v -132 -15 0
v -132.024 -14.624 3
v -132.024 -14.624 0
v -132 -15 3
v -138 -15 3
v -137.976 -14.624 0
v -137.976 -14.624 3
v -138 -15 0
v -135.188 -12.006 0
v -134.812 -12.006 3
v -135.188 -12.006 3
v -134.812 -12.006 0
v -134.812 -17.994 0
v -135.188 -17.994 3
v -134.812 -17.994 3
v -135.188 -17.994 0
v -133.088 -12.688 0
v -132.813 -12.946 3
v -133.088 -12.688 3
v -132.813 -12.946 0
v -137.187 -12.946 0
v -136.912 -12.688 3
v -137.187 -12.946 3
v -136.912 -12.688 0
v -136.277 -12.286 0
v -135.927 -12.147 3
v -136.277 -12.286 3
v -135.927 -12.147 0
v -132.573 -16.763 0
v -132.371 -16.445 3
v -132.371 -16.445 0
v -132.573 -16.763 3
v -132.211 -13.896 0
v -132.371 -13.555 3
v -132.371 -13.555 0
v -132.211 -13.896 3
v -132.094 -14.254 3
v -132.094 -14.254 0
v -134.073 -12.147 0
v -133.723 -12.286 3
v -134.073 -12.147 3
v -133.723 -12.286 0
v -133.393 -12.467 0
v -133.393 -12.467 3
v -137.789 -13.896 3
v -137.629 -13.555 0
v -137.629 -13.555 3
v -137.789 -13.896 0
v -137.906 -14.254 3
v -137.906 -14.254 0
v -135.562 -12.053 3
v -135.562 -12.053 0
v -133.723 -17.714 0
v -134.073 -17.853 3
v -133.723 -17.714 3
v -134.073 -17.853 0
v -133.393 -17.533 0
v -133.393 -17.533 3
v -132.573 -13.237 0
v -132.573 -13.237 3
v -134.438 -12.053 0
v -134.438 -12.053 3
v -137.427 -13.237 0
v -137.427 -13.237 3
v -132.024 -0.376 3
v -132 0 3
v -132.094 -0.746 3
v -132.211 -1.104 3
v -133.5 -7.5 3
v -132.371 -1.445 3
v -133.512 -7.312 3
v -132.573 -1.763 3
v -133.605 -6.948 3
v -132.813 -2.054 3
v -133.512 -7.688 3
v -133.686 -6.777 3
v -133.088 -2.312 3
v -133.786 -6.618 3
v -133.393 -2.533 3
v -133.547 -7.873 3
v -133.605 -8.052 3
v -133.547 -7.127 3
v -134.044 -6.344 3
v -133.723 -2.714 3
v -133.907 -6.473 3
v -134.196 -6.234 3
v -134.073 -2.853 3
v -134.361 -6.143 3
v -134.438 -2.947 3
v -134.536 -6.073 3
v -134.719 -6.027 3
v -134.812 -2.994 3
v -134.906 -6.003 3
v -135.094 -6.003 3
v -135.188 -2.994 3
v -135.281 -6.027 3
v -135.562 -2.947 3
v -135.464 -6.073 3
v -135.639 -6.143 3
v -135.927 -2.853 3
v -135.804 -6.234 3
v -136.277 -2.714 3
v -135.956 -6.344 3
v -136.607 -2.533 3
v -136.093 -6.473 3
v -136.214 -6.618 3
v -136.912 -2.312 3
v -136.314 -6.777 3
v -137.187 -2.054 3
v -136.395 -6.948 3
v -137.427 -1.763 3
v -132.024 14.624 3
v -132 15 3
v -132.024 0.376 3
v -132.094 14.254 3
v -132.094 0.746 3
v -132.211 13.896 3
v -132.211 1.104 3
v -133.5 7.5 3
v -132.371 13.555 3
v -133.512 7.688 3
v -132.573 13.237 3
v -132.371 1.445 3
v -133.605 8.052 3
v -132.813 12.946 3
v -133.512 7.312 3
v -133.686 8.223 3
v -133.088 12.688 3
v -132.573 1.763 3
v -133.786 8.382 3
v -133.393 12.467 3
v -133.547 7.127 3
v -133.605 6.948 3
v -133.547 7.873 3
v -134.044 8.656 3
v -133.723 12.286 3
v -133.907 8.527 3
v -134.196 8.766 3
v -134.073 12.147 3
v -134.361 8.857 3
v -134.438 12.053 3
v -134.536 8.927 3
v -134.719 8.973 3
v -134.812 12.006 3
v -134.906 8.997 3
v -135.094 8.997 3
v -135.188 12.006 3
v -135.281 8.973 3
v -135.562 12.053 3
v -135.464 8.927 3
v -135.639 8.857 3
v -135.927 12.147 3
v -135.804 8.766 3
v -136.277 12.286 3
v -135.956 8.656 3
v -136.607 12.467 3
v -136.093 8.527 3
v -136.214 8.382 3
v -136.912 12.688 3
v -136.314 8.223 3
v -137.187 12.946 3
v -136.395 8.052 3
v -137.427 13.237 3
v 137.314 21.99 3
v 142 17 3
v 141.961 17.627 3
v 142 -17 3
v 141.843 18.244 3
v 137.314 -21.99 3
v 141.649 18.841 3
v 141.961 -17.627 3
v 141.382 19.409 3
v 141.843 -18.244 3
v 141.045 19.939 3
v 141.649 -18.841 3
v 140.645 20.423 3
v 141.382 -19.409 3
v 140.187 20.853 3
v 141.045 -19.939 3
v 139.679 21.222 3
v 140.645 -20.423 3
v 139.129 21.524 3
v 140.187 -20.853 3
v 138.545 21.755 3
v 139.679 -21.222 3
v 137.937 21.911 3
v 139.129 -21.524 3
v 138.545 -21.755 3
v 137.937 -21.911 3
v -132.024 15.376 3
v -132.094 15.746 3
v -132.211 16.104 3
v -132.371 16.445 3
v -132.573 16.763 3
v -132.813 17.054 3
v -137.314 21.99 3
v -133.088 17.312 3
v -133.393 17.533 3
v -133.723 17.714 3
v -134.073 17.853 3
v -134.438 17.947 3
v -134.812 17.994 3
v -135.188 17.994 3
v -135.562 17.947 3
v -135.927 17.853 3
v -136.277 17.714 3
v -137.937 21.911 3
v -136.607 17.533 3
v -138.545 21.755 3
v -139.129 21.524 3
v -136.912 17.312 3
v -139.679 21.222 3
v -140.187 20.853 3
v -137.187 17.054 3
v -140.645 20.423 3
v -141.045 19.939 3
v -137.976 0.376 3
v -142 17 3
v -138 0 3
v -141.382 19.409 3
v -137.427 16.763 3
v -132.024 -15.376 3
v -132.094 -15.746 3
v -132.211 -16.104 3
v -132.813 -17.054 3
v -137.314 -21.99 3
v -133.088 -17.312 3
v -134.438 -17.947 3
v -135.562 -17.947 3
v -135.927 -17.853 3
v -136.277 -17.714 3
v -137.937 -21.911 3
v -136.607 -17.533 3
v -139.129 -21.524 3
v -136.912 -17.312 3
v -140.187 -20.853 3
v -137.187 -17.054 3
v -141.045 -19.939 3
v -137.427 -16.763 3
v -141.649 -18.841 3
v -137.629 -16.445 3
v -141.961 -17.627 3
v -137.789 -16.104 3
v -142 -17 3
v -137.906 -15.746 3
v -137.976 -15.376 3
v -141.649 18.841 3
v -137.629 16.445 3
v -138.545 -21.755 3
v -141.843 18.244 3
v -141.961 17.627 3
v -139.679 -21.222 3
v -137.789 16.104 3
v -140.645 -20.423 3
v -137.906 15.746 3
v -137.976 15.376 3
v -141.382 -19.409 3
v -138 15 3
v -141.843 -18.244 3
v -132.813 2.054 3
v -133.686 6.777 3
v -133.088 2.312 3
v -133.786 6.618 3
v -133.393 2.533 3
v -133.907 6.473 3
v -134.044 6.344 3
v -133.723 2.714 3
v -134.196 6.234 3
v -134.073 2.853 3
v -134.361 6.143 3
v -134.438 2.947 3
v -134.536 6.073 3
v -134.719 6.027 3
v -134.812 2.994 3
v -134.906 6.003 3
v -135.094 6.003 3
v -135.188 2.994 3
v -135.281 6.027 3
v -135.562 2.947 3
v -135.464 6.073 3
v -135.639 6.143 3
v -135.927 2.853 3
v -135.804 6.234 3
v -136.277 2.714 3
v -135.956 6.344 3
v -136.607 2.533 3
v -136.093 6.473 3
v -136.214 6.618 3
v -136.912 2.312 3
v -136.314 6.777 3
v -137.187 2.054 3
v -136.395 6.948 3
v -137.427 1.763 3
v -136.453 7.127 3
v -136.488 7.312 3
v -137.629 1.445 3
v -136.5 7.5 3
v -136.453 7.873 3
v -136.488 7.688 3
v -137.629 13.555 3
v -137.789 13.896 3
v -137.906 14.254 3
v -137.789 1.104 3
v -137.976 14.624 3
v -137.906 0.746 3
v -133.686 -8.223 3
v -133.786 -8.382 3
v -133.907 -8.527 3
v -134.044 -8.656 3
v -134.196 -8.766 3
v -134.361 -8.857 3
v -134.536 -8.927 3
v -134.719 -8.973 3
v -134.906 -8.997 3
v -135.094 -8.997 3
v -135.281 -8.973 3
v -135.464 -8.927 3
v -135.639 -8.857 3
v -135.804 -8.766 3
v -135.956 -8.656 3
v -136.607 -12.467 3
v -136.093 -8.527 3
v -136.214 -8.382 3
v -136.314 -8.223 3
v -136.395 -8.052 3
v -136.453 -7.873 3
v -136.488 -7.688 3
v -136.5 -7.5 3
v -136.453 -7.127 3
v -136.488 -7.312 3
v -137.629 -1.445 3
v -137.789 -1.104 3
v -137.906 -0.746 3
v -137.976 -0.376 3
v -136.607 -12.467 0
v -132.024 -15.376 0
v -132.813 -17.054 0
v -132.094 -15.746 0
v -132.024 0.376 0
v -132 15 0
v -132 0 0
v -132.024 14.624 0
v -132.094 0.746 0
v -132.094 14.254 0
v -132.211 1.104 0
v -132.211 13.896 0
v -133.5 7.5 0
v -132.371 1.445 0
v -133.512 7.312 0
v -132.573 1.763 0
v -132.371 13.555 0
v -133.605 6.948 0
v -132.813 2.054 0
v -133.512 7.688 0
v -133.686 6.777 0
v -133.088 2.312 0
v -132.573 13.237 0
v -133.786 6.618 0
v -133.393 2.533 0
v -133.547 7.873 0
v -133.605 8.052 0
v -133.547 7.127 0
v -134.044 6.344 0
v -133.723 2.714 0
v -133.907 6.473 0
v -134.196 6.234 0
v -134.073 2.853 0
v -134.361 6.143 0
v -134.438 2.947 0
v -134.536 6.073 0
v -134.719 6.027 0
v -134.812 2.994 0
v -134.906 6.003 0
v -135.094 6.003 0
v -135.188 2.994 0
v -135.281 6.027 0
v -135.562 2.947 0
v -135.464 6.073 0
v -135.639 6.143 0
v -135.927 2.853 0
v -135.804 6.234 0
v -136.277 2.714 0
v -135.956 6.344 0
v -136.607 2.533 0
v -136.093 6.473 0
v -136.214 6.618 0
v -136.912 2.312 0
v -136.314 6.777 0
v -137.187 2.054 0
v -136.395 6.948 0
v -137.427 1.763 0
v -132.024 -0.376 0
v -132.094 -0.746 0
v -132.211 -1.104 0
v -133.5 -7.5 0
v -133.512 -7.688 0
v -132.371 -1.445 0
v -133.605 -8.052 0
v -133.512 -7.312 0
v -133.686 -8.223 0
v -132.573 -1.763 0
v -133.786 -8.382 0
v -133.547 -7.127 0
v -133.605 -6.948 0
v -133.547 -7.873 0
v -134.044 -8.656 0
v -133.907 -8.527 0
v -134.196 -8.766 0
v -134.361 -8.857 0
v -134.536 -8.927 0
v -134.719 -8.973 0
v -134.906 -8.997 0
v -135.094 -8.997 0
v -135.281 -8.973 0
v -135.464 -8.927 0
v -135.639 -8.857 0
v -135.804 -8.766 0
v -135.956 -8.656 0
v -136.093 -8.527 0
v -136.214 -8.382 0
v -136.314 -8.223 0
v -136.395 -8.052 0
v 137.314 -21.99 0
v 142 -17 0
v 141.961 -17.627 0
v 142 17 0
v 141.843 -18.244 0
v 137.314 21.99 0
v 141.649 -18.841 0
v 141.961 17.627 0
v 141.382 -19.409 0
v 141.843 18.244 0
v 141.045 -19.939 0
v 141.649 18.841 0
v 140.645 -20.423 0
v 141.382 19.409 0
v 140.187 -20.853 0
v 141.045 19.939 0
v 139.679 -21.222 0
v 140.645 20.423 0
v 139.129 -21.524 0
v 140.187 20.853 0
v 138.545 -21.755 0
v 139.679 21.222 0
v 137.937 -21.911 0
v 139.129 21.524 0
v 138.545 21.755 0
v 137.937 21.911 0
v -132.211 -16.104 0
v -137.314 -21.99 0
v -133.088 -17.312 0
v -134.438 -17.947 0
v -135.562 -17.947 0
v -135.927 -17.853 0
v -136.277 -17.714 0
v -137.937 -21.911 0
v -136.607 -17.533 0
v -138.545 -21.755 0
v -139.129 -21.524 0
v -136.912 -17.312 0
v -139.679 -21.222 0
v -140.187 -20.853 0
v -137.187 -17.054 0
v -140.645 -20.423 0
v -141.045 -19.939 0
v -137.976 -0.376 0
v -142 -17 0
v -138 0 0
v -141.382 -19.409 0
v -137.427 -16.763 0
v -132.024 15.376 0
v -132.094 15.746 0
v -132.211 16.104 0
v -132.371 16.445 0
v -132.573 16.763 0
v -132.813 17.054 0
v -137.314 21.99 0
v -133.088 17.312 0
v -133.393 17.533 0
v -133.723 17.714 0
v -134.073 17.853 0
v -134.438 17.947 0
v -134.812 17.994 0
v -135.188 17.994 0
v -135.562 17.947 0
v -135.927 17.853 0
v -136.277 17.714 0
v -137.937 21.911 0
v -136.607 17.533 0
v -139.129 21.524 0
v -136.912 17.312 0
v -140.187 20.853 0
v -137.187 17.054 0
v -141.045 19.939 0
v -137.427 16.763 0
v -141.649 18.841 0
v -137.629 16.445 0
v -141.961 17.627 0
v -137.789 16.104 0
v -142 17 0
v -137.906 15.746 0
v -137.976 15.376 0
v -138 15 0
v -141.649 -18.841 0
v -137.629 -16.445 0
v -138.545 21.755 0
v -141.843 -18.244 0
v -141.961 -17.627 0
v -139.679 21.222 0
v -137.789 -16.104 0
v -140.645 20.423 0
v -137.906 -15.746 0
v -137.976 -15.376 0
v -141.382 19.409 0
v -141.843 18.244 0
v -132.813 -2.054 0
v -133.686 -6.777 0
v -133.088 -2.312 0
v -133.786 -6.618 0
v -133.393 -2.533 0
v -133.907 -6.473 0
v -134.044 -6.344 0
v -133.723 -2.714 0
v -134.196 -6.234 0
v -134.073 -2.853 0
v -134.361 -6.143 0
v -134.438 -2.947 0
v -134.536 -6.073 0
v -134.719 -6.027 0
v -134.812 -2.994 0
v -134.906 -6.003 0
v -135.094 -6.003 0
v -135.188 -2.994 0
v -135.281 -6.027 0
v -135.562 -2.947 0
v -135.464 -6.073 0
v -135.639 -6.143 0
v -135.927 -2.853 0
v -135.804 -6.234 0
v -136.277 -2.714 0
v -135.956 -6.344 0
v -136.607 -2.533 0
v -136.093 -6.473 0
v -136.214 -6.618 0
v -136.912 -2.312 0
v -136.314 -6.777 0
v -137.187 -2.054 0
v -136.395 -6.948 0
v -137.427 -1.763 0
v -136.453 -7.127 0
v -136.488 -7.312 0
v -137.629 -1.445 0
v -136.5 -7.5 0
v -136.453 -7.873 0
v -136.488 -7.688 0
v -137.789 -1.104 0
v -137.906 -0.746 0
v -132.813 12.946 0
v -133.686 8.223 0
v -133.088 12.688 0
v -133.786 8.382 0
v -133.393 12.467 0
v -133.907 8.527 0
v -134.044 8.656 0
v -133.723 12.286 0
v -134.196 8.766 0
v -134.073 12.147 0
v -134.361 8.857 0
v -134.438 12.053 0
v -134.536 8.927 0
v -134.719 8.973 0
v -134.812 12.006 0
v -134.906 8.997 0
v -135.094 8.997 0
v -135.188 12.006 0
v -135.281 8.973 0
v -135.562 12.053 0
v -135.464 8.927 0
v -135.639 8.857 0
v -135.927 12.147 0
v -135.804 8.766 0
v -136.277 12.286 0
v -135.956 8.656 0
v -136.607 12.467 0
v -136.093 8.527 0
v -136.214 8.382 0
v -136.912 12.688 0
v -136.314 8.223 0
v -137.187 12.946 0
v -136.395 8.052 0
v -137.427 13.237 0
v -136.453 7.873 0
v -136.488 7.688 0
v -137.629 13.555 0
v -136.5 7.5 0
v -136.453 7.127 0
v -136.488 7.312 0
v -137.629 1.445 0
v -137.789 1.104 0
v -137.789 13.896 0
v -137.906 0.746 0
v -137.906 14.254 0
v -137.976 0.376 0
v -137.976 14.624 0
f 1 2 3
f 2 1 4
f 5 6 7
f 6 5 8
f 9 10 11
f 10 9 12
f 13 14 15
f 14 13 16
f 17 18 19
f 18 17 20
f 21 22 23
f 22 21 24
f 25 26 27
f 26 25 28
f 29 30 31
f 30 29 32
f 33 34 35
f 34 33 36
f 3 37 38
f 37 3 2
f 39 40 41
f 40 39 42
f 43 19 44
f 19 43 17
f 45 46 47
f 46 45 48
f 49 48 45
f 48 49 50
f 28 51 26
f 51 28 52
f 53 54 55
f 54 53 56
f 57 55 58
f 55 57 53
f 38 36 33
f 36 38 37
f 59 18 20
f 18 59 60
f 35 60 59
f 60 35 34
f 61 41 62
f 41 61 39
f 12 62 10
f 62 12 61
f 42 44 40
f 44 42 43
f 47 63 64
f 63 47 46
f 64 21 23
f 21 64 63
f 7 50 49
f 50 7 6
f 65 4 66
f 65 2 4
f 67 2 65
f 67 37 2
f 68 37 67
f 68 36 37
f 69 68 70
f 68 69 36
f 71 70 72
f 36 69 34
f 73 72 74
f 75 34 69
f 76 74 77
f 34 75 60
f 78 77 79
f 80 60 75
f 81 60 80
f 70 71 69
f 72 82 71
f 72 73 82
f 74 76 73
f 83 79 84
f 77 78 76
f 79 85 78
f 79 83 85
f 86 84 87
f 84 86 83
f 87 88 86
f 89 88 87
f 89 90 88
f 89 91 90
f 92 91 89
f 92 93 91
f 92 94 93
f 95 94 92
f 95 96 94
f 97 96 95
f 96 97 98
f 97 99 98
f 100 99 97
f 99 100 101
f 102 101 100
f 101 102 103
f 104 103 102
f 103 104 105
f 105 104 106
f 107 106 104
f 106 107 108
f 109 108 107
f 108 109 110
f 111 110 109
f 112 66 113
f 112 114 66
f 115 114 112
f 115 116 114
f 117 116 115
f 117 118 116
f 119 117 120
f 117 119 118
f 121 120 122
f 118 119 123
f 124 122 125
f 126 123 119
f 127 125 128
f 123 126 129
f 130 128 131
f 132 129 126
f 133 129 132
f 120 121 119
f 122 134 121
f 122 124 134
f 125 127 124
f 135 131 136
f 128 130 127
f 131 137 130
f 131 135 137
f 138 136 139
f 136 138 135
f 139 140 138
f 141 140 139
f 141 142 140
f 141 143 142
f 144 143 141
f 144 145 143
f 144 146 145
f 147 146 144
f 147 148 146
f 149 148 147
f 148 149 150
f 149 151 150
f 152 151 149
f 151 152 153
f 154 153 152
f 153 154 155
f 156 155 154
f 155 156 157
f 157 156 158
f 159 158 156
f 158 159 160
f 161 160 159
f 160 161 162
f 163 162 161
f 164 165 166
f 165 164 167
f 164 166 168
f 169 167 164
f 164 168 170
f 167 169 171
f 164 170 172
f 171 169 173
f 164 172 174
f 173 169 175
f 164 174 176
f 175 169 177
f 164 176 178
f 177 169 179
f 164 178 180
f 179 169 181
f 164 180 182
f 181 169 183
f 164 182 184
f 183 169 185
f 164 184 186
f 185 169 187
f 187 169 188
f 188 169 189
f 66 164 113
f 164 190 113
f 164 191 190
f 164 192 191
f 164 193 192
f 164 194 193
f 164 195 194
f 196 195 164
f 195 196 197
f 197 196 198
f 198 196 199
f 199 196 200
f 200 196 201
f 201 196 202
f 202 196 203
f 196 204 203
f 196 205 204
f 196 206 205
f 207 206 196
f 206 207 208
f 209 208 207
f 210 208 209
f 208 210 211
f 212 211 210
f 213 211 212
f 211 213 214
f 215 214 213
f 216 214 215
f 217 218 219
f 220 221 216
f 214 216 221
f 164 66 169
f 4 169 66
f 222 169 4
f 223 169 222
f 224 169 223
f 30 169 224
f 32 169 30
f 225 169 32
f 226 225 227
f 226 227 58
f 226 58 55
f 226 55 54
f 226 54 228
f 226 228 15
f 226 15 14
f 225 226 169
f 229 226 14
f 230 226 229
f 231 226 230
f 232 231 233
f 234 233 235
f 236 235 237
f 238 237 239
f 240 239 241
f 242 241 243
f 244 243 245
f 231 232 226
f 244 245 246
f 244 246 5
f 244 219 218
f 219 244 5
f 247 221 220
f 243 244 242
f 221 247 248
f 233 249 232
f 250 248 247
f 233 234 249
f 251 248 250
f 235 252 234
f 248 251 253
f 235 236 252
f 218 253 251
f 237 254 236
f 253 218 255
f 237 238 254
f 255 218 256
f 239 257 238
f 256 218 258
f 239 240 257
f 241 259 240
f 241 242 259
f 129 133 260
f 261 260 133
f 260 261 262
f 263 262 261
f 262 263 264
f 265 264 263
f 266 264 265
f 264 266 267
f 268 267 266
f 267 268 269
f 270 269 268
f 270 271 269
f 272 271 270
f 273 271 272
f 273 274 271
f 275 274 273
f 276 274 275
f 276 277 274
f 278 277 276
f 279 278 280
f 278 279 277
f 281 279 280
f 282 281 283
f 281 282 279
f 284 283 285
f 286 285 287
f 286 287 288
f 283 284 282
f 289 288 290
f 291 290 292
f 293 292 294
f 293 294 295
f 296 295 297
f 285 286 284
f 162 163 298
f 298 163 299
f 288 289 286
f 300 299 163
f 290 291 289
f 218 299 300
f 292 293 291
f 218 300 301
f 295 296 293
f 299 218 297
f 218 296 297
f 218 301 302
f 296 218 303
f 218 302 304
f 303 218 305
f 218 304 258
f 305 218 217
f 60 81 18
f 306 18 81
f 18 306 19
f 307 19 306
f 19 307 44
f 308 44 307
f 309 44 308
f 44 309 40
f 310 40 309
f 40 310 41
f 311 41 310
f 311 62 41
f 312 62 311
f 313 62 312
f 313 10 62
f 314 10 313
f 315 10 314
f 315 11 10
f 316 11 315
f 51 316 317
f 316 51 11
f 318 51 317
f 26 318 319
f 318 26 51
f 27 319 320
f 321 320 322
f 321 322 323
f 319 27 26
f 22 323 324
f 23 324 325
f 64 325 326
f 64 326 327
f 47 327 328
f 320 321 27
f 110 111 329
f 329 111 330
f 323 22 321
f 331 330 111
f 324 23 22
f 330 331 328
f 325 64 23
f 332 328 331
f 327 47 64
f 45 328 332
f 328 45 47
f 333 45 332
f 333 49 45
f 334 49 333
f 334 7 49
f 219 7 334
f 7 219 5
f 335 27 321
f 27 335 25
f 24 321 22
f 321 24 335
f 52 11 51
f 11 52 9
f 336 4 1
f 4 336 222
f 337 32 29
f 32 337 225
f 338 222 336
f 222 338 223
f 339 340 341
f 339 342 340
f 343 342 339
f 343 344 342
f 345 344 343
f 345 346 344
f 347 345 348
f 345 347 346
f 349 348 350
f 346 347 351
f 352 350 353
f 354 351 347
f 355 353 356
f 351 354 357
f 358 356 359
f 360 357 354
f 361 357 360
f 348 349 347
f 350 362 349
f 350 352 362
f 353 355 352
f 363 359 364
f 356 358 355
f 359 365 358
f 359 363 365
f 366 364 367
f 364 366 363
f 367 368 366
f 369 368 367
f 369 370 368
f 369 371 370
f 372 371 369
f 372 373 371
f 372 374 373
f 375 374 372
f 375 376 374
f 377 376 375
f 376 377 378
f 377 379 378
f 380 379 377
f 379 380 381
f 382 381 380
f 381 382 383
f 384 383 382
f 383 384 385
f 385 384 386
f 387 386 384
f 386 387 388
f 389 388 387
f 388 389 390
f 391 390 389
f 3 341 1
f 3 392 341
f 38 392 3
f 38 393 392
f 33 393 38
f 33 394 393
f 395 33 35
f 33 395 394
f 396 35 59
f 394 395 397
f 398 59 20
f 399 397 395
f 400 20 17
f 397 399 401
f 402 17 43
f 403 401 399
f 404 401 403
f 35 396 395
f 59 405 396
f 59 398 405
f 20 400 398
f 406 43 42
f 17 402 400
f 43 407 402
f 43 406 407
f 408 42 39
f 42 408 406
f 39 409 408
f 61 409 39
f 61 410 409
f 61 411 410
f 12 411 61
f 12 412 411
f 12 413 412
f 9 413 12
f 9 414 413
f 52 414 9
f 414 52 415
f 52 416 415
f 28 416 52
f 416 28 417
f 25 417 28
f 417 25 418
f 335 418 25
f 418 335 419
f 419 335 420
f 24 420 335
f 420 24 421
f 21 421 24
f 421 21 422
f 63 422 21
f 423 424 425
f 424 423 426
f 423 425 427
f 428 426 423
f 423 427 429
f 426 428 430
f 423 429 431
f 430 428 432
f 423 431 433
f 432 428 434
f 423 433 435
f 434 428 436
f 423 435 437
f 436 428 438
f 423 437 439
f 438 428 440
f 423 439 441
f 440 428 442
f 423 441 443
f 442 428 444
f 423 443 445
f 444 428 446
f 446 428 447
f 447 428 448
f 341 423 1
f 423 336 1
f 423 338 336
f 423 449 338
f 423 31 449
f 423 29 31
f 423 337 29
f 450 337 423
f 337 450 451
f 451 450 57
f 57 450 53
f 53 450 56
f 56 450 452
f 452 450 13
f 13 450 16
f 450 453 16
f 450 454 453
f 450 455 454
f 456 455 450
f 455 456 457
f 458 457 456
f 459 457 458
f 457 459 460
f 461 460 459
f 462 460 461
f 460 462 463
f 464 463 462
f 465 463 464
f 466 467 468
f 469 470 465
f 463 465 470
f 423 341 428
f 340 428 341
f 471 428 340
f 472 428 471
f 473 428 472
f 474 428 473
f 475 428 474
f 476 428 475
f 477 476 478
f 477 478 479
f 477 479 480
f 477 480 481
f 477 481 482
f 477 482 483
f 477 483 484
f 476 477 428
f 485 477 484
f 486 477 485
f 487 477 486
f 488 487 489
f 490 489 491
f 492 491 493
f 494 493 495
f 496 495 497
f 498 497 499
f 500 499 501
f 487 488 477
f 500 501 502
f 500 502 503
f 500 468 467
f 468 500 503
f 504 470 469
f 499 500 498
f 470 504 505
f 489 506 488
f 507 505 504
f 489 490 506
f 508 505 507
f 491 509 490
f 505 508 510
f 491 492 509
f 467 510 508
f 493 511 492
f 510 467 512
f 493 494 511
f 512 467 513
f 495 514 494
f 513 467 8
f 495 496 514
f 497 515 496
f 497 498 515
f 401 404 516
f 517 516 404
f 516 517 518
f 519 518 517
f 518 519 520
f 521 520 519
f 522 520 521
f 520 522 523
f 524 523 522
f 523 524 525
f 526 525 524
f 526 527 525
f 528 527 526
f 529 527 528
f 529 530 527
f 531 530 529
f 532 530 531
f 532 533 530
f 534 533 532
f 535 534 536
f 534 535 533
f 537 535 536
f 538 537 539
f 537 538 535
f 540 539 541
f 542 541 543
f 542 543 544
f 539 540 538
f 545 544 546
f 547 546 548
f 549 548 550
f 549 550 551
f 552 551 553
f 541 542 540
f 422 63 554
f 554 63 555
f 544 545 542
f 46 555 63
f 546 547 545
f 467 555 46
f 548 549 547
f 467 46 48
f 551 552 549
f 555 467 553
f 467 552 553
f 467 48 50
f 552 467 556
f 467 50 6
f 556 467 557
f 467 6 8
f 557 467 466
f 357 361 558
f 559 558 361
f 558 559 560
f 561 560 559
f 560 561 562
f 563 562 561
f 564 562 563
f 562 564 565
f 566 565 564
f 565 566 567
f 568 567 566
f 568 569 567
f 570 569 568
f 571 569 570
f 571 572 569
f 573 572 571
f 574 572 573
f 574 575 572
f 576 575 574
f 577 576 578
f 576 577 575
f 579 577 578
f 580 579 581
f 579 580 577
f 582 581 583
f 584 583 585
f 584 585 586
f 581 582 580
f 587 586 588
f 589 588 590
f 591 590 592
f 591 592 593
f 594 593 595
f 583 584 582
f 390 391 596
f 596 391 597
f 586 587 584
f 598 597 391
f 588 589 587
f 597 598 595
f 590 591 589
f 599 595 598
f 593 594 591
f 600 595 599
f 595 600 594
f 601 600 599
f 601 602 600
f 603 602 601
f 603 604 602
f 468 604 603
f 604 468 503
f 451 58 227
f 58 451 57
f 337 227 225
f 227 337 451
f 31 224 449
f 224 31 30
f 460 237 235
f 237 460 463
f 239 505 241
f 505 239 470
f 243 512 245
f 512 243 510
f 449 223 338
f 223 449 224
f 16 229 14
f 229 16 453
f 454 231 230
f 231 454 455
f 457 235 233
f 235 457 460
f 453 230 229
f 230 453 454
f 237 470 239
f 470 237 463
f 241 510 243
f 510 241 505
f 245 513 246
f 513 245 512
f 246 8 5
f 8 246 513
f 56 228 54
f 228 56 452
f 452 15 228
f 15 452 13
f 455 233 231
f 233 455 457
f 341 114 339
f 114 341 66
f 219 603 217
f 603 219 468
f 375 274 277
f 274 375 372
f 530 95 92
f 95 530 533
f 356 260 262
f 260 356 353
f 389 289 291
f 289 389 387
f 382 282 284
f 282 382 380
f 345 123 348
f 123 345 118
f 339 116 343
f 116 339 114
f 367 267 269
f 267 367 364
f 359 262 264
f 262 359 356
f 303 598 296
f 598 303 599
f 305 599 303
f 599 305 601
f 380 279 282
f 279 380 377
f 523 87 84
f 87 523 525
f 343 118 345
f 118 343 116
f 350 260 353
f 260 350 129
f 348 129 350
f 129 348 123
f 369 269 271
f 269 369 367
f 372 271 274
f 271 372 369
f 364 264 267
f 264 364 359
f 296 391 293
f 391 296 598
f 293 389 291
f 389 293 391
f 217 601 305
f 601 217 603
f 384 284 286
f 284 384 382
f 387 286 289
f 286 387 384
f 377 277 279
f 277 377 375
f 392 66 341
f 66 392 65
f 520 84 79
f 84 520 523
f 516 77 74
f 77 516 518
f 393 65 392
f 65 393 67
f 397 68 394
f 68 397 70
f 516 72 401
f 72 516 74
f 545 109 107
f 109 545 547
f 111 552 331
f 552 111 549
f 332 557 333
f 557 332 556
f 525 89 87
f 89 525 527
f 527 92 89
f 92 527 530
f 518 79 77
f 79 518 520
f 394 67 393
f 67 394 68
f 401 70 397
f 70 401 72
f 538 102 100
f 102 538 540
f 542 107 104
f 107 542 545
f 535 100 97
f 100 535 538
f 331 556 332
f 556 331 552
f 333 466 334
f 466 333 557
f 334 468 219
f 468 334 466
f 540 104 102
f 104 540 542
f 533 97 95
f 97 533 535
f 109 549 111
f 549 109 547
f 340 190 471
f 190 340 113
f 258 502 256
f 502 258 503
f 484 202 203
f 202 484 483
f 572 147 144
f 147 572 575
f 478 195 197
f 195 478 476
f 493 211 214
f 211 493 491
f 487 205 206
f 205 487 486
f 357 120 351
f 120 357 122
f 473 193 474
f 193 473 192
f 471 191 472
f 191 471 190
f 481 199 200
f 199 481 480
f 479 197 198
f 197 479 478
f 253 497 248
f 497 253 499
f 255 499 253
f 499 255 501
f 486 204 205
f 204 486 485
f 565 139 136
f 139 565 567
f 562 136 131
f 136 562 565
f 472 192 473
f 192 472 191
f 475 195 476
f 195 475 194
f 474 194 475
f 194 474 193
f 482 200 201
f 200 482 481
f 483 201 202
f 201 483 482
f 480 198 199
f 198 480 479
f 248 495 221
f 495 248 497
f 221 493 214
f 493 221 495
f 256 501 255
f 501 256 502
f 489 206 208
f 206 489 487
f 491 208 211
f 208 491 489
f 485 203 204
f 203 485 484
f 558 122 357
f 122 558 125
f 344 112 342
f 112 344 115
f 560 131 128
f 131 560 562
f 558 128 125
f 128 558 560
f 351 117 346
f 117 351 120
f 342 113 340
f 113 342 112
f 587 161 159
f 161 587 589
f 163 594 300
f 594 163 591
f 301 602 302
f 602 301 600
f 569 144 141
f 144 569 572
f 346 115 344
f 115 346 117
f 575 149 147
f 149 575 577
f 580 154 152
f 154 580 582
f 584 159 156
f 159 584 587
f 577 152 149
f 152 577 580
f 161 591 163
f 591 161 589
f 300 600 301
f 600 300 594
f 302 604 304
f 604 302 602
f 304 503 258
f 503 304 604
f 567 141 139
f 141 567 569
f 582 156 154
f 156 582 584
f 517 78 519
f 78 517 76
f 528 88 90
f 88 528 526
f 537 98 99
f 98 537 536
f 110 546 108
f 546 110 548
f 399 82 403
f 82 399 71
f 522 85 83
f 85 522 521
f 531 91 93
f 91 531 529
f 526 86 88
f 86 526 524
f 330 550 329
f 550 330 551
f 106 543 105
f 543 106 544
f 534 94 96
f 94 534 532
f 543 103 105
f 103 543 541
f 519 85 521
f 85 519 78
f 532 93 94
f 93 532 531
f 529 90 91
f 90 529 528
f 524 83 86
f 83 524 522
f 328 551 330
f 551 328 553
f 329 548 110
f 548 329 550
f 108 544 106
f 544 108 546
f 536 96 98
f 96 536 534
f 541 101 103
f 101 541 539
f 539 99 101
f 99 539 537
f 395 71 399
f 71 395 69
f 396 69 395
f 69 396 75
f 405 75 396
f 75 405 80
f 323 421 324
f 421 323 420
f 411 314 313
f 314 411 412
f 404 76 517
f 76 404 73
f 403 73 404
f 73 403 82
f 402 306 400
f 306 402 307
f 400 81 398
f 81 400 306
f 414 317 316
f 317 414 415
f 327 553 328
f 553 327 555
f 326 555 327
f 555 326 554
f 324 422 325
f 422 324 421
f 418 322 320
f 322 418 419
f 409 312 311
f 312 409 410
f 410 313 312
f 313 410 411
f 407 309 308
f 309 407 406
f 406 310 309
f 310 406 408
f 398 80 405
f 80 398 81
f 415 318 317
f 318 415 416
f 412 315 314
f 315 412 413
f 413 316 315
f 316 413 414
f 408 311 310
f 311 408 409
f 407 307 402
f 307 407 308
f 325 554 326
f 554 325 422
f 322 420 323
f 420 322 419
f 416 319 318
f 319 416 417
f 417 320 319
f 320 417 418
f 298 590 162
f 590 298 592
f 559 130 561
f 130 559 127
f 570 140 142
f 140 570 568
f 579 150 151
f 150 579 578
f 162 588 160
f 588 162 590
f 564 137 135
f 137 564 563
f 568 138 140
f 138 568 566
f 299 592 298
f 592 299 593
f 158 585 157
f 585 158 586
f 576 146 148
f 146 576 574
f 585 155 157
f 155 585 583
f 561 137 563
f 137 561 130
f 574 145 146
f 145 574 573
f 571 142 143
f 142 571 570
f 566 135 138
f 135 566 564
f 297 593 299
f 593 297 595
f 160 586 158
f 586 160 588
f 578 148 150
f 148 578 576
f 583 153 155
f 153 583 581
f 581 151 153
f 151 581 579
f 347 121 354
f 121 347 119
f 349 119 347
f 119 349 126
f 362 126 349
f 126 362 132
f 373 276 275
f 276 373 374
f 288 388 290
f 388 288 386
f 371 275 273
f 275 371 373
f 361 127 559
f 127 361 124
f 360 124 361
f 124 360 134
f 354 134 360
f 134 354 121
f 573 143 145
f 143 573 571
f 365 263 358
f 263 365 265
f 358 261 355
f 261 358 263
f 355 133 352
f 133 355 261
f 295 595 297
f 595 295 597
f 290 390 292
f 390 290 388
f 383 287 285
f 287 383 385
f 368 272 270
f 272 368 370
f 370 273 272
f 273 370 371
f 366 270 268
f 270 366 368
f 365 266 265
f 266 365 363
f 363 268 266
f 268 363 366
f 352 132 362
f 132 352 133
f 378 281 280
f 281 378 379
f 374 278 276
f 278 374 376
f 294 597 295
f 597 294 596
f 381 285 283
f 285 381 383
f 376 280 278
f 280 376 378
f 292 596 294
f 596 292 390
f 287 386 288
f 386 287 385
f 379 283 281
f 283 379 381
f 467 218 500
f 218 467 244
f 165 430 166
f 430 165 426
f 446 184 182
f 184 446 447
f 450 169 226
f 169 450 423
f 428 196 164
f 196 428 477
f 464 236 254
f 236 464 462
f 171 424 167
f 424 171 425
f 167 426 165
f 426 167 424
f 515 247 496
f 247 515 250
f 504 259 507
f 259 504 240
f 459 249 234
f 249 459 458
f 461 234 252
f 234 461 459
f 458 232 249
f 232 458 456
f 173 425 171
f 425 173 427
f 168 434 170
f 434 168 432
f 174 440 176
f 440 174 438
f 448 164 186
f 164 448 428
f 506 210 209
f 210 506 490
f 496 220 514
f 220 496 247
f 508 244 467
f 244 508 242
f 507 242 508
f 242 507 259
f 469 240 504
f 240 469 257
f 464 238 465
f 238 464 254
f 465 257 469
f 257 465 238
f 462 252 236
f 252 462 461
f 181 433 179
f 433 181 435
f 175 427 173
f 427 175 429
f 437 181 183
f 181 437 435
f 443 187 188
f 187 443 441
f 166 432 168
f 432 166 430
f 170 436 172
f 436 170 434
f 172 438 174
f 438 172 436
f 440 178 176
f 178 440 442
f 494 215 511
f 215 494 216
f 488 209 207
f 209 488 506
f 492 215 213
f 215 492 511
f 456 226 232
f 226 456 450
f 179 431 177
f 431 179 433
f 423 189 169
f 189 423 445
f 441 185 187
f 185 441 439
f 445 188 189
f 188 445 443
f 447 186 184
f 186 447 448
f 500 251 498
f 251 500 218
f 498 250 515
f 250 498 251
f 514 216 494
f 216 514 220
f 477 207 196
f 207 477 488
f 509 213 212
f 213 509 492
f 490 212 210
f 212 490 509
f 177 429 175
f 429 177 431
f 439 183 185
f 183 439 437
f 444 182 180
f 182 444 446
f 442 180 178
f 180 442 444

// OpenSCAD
$fn = 50;


difference() {
	union() {
		hull() {
			translate(v = [-137.0000000000, 17.0000000000, 0]) {
				cylinder(h = 3, r = 5);
			}
			translate(v = [137.0000000000, 17.0000000000, 0]) {
				cylinder(h = 3, r = 5);
			}
			translate(v = [-137.0000000000, -17.0000000000, 0]) {
				cylinder(h = 3, r = 5);
			}
			translate(v = [137.0000000000, -17.0000000000, 0]) {
				cylinder(h = 3, r = 5);
			}
		}
	}
	union() {
		translate(v = [-135.0000000000, -15.0000000000, 0]) {
			cylinder(h = 3, r = 3.0000000000);
		}
		translate(v = [-135.0000000000, 0.0000000000, 0]) {
			cylinder(h = 3, r = 3.0000000000);
		}
		translate(v = [-135.0000000000, 15.0000000000, 0]) {
			cylinder(h = 3, r = 3.0000000000);
		}
		translate(v = [-135.0000000000, -15.0000000000, 0]) {
			cylinder(h = 3, r = 1.5000000000);
		}
		translate(v = [-135.0000000000, -7.5000000000, 0]) {
			cylinder(h = 3, r = 1.5000000000);
		}
		translate(v = [-135.0000000000, 0.0000000000, 0]) {
			cylinder(h = 3, r = 1.5000000000);
		}
		translate(v = [-135.0000000000, 7.5000000000, 0]) {
			cylinder(h = 3, r = 1.5000000000);
		}
		translate(v = [-135.0000000000, 15.0000000000, 0]) {
			cylinder(h = 3, r = 1.5000000000);
		}
		translate(v = [-135.0000000000, -15.0000000000, 0]) {
			cylinder(h = 3, r = 1.5000000000);
		}
		translate(v = [-135.0000000000, -7.5000000000, 0]) {
			cylinder(h = 3, r = 1.5000000000);
		}
		translate(v = [-135.0000000000, 0.0000000000, 0]) {
			cylinder(h = 3, r = 1.5000000000);
		}
		translate(v = [-135.0000000000, 7.5000000000, 0]) {
			cylinder(h = 3, r = 1.5000000000);
		}
		translate(v = [-135.0000000000, 15.0000000000, 0]) {
			cylinder(h = 3, r = 1.5000000000);
		}
		translate(v = [-135.0000000000, -15.0000000000, 0]) {
			cylinder(h = 3, r = 1.5000000000);
		}
		translate(v = [-135.0000000000, -7.5000000000, 0]) {
			cylinder(h = 3, r = 1.5000000000);
		}
		translate(v = [-135.0000000000, 0.0000000000, 0]) {
			cylinder(h = 3, r = 1.5000000000);
		}
		translate(v = [-135.0000000000, 7.5000000000, 0]) {
			cylinder(h = 3, r = 1.5000000000);
		}
		translate(v = [-135.0000000000, 15.0000000000, 0]) {
			cylinder(h = 3, r = 1.5000000000);
		}
	}
}
